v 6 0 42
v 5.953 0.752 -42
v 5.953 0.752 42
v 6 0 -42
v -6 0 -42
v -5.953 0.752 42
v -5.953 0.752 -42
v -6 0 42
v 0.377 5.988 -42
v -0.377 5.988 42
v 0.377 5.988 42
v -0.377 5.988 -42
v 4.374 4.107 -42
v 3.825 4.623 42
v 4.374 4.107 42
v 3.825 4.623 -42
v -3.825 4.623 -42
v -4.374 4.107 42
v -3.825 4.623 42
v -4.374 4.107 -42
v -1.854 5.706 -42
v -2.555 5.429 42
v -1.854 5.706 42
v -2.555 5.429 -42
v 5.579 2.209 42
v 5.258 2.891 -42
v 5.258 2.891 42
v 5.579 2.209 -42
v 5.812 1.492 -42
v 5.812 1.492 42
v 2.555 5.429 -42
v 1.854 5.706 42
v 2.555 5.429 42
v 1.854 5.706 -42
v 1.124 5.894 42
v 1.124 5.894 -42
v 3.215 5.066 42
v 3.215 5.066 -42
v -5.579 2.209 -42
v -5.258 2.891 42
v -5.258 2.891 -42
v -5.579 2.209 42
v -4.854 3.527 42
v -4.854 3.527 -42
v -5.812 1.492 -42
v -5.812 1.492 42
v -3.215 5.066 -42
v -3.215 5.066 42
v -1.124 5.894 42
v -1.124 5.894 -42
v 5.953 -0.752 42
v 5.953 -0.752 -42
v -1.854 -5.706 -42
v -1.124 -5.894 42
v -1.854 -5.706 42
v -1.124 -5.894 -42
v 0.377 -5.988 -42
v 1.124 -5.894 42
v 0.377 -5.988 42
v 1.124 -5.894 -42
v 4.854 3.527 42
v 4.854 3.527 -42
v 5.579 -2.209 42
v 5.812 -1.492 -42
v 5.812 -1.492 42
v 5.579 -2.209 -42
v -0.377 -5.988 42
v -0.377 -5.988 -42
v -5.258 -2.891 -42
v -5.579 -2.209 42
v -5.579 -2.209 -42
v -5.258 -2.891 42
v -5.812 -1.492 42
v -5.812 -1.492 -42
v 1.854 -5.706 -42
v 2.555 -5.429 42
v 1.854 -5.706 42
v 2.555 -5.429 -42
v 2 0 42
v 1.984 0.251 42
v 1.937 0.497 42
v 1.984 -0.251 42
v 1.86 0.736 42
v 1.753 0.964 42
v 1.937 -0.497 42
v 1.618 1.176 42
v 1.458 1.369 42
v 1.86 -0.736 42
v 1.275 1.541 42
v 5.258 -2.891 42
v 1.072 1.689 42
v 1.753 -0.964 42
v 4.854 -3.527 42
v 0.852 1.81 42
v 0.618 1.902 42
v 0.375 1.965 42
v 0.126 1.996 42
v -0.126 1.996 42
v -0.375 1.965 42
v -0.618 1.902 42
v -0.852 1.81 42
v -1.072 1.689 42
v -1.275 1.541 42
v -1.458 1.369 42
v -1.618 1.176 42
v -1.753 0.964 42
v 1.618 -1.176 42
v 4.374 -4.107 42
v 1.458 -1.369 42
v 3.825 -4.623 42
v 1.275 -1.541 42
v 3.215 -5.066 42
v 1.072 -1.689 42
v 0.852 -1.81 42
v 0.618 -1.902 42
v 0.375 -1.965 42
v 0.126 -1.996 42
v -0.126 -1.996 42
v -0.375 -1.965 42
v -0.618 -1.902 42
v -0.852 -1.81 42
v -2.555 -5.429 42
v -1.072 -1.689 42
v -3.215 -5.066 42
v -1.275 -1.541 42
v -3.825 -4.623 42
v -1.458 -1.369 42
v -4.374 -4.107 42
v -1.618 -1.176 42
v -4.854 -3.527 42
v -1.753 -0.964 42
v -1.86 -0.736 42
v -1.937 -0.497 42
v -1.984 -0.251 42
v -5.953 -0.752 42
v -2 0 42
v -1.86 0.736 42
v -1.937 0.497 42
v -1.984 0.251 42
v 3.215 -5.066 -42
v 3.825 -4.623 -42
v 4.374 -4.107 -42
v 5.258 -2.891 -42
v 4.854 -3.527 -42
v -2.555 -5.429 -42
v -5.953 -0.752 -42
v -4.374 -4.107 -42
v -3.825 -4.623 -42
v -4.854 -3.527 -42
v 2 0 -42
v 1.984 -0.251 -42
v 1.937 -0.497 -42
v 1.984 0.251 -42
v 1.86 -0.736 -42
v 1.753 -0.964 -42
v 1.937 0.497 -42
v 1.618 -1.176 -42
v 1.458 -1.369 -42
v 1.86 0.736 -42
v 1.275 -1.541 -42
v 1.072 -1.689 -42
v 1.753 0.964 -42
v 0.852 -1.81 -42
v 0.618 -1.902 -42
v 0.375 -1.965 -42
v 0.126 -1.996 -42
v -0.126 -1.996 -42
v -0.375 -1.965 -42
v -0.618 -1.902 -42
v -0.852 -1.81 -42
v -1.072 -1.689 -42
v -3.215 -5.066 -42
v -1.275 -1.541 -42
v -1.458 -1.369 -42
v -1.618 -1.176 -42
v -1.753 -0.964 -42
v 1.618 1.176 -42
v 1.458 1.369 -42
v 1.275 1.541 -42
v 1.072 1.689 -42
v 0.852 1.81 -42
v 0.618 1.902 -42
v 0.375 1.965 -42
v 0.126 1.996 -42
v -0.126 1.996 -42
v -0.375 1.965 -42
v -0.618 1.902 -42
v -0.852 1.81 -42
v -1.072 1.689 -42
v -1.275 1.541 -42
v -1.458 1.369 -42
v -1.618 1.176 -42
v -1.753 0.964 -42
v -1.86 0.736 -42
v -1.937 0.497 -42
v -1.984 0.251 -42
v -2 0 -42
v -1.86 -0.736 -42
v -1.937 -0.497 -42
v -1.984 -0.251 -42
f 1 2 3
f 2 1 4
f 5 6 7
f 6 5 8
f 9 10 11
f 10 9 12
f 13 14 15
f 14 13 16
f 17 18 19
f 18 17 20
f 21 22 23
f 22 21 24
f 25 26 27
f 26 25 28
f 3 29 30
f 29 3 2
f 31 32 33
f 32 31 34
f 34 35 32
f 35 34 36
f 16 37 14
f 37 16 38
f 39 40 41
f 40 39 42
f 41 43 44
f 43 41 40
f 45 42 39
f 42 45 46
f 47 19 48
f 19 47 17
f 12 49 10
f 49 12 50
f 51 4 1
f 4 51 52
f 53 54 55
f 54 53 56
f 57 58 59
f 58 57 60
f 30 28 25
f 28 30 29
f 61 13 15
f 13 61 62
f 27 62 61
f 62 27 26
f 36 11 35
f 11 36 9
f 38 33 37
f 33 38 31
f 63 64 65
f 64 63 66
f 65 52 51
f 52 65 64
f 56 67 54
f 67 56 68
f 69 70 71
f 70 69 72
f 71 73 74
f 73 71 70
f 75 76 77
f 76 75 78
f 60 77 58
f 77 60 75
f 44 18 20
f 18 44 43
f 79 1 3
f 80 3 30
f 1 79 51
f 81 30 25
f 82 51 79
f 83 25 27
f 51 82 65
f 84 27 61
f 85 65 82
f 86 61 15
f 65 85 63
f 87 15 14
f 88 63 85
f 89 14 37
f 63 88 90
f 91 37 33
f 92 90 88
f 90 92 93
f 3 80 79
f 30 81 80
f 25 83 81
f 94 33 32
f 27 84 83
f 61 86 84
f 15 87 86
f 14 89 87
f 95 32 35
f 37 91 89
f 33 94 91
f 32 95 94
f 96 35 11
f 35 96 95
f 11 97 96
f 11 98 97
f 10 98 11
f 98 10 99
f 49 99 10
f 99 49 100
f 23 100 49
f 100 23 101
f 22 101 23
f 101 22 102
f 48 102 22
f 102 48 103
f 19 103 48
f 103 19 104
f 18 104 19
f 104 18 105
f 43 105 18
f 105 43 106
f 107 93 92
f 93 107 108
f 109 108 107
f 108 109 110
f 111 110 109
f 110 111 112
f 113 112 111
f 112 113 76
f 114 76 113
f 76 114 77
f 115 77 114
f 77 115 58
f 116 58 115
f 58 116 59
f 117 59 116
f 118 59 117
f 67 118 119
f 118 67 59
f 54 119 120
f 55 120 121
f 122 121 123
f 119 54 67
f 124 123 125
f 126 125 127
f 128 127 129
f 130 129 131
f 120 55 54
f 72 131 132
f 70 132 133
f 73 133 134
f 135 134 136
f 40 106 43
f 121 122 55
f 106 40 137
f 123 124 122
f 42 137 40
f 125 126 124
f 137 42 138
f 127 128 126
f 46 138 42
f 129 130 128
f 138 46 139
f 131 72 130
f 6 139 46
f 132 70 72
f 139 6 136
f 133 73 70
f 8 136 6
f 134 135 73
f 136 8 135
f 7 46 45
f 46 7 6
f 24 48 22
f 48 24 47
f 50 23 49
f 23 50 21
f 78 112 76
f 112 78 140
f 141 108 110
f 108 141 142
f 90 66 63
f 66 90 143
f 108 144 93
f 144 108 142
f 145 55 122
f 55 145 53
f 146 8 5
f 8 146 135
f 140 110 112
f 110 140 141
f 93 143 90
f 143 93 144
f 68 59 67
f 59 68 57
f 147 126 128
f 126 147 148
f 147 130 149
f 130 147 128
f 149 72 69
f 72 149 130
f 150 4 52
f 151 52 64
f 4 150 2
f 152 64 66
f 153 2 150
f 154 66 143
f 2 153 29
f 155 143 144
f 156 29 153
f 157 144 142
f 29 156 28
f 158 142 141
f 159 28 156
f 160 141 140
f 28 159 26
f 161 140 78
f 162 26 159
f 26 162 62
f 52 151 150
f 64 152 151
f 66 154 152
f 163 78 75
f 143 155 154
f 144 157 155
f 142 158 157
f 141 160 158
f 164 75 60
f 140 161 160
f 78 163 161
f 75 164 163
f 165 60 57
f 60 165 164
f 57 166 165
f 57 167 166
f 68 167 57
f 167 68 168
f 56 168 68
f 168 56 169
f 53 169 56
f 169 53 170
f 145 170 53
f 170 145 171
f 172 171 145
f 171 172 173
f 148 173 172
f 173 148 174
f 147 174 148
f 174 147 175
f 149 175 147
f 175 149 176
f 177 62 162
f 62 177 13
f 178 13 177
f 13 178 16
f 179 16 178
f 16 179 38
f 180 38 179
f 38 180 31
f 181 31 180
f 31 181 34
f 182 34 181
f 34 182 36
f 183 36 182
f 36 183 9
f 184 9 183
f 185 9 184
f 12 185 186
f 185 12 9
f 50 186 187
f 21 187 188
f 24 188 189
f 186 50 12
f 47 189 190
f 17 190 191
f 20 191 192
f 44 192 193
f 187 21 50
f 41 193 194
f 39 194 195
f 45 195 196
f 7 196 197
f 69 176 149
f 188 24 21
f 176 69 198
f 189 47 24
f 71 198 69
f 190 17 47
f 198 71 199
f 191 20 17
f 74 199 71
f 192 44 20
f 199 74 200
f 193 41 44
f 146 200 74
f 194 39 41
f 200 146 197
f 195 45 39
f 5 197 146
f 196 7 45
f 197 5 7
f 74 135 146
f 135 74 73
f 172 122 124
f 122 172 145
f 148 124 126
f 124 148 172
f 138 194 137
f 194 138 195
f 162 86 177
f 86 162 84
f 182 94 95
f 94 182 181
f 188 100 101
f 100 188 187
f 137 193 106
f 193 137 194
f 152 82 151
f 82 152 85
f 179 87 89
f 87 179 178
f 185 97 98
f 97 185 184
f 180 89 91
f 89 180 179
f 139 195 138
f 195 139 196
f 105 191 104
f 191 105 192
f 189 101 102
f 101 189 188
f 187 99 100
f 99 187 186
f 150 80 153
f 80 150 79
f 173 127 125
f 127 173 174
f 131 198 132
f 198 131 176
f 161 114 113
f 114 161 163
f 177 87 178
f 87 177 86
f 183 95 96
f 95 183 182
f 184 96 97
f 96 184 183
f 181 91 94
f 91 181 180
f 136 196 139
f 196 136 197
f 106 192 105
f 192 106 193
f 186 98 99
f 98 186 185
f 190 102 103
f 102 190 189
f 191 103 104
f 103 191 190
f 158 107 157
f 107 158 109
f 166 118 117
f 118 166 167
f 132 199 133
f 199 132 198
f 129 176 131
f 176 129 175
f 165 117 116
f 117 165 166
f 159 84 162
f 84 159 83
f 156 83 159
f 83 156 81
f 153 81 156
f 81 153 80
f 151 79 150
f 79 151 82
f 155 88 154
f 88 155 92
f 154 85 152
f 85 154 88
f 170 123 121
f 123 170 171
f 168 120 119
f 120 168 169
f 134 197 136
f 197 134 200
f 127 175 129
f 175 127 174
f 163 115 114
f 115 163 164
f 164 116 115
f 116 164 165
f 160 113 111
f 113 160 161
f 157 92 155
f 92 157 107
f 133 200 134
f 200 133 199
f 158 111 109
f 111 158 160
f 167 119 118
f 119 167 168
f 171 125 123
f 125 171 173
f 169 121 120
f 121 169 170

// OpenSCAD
$fn = 50;


difference() {
	union() {
		translate(v = [0, 0, -42.0000000000]) {
			cylinder(h = 84, r = 6.0000000000);
		}
	}
	union() {
		translate(v = [0, 0, -100.0000000000]) {
			cylinder(h = 200, r = 2.0000000000);
		}
	}
}
